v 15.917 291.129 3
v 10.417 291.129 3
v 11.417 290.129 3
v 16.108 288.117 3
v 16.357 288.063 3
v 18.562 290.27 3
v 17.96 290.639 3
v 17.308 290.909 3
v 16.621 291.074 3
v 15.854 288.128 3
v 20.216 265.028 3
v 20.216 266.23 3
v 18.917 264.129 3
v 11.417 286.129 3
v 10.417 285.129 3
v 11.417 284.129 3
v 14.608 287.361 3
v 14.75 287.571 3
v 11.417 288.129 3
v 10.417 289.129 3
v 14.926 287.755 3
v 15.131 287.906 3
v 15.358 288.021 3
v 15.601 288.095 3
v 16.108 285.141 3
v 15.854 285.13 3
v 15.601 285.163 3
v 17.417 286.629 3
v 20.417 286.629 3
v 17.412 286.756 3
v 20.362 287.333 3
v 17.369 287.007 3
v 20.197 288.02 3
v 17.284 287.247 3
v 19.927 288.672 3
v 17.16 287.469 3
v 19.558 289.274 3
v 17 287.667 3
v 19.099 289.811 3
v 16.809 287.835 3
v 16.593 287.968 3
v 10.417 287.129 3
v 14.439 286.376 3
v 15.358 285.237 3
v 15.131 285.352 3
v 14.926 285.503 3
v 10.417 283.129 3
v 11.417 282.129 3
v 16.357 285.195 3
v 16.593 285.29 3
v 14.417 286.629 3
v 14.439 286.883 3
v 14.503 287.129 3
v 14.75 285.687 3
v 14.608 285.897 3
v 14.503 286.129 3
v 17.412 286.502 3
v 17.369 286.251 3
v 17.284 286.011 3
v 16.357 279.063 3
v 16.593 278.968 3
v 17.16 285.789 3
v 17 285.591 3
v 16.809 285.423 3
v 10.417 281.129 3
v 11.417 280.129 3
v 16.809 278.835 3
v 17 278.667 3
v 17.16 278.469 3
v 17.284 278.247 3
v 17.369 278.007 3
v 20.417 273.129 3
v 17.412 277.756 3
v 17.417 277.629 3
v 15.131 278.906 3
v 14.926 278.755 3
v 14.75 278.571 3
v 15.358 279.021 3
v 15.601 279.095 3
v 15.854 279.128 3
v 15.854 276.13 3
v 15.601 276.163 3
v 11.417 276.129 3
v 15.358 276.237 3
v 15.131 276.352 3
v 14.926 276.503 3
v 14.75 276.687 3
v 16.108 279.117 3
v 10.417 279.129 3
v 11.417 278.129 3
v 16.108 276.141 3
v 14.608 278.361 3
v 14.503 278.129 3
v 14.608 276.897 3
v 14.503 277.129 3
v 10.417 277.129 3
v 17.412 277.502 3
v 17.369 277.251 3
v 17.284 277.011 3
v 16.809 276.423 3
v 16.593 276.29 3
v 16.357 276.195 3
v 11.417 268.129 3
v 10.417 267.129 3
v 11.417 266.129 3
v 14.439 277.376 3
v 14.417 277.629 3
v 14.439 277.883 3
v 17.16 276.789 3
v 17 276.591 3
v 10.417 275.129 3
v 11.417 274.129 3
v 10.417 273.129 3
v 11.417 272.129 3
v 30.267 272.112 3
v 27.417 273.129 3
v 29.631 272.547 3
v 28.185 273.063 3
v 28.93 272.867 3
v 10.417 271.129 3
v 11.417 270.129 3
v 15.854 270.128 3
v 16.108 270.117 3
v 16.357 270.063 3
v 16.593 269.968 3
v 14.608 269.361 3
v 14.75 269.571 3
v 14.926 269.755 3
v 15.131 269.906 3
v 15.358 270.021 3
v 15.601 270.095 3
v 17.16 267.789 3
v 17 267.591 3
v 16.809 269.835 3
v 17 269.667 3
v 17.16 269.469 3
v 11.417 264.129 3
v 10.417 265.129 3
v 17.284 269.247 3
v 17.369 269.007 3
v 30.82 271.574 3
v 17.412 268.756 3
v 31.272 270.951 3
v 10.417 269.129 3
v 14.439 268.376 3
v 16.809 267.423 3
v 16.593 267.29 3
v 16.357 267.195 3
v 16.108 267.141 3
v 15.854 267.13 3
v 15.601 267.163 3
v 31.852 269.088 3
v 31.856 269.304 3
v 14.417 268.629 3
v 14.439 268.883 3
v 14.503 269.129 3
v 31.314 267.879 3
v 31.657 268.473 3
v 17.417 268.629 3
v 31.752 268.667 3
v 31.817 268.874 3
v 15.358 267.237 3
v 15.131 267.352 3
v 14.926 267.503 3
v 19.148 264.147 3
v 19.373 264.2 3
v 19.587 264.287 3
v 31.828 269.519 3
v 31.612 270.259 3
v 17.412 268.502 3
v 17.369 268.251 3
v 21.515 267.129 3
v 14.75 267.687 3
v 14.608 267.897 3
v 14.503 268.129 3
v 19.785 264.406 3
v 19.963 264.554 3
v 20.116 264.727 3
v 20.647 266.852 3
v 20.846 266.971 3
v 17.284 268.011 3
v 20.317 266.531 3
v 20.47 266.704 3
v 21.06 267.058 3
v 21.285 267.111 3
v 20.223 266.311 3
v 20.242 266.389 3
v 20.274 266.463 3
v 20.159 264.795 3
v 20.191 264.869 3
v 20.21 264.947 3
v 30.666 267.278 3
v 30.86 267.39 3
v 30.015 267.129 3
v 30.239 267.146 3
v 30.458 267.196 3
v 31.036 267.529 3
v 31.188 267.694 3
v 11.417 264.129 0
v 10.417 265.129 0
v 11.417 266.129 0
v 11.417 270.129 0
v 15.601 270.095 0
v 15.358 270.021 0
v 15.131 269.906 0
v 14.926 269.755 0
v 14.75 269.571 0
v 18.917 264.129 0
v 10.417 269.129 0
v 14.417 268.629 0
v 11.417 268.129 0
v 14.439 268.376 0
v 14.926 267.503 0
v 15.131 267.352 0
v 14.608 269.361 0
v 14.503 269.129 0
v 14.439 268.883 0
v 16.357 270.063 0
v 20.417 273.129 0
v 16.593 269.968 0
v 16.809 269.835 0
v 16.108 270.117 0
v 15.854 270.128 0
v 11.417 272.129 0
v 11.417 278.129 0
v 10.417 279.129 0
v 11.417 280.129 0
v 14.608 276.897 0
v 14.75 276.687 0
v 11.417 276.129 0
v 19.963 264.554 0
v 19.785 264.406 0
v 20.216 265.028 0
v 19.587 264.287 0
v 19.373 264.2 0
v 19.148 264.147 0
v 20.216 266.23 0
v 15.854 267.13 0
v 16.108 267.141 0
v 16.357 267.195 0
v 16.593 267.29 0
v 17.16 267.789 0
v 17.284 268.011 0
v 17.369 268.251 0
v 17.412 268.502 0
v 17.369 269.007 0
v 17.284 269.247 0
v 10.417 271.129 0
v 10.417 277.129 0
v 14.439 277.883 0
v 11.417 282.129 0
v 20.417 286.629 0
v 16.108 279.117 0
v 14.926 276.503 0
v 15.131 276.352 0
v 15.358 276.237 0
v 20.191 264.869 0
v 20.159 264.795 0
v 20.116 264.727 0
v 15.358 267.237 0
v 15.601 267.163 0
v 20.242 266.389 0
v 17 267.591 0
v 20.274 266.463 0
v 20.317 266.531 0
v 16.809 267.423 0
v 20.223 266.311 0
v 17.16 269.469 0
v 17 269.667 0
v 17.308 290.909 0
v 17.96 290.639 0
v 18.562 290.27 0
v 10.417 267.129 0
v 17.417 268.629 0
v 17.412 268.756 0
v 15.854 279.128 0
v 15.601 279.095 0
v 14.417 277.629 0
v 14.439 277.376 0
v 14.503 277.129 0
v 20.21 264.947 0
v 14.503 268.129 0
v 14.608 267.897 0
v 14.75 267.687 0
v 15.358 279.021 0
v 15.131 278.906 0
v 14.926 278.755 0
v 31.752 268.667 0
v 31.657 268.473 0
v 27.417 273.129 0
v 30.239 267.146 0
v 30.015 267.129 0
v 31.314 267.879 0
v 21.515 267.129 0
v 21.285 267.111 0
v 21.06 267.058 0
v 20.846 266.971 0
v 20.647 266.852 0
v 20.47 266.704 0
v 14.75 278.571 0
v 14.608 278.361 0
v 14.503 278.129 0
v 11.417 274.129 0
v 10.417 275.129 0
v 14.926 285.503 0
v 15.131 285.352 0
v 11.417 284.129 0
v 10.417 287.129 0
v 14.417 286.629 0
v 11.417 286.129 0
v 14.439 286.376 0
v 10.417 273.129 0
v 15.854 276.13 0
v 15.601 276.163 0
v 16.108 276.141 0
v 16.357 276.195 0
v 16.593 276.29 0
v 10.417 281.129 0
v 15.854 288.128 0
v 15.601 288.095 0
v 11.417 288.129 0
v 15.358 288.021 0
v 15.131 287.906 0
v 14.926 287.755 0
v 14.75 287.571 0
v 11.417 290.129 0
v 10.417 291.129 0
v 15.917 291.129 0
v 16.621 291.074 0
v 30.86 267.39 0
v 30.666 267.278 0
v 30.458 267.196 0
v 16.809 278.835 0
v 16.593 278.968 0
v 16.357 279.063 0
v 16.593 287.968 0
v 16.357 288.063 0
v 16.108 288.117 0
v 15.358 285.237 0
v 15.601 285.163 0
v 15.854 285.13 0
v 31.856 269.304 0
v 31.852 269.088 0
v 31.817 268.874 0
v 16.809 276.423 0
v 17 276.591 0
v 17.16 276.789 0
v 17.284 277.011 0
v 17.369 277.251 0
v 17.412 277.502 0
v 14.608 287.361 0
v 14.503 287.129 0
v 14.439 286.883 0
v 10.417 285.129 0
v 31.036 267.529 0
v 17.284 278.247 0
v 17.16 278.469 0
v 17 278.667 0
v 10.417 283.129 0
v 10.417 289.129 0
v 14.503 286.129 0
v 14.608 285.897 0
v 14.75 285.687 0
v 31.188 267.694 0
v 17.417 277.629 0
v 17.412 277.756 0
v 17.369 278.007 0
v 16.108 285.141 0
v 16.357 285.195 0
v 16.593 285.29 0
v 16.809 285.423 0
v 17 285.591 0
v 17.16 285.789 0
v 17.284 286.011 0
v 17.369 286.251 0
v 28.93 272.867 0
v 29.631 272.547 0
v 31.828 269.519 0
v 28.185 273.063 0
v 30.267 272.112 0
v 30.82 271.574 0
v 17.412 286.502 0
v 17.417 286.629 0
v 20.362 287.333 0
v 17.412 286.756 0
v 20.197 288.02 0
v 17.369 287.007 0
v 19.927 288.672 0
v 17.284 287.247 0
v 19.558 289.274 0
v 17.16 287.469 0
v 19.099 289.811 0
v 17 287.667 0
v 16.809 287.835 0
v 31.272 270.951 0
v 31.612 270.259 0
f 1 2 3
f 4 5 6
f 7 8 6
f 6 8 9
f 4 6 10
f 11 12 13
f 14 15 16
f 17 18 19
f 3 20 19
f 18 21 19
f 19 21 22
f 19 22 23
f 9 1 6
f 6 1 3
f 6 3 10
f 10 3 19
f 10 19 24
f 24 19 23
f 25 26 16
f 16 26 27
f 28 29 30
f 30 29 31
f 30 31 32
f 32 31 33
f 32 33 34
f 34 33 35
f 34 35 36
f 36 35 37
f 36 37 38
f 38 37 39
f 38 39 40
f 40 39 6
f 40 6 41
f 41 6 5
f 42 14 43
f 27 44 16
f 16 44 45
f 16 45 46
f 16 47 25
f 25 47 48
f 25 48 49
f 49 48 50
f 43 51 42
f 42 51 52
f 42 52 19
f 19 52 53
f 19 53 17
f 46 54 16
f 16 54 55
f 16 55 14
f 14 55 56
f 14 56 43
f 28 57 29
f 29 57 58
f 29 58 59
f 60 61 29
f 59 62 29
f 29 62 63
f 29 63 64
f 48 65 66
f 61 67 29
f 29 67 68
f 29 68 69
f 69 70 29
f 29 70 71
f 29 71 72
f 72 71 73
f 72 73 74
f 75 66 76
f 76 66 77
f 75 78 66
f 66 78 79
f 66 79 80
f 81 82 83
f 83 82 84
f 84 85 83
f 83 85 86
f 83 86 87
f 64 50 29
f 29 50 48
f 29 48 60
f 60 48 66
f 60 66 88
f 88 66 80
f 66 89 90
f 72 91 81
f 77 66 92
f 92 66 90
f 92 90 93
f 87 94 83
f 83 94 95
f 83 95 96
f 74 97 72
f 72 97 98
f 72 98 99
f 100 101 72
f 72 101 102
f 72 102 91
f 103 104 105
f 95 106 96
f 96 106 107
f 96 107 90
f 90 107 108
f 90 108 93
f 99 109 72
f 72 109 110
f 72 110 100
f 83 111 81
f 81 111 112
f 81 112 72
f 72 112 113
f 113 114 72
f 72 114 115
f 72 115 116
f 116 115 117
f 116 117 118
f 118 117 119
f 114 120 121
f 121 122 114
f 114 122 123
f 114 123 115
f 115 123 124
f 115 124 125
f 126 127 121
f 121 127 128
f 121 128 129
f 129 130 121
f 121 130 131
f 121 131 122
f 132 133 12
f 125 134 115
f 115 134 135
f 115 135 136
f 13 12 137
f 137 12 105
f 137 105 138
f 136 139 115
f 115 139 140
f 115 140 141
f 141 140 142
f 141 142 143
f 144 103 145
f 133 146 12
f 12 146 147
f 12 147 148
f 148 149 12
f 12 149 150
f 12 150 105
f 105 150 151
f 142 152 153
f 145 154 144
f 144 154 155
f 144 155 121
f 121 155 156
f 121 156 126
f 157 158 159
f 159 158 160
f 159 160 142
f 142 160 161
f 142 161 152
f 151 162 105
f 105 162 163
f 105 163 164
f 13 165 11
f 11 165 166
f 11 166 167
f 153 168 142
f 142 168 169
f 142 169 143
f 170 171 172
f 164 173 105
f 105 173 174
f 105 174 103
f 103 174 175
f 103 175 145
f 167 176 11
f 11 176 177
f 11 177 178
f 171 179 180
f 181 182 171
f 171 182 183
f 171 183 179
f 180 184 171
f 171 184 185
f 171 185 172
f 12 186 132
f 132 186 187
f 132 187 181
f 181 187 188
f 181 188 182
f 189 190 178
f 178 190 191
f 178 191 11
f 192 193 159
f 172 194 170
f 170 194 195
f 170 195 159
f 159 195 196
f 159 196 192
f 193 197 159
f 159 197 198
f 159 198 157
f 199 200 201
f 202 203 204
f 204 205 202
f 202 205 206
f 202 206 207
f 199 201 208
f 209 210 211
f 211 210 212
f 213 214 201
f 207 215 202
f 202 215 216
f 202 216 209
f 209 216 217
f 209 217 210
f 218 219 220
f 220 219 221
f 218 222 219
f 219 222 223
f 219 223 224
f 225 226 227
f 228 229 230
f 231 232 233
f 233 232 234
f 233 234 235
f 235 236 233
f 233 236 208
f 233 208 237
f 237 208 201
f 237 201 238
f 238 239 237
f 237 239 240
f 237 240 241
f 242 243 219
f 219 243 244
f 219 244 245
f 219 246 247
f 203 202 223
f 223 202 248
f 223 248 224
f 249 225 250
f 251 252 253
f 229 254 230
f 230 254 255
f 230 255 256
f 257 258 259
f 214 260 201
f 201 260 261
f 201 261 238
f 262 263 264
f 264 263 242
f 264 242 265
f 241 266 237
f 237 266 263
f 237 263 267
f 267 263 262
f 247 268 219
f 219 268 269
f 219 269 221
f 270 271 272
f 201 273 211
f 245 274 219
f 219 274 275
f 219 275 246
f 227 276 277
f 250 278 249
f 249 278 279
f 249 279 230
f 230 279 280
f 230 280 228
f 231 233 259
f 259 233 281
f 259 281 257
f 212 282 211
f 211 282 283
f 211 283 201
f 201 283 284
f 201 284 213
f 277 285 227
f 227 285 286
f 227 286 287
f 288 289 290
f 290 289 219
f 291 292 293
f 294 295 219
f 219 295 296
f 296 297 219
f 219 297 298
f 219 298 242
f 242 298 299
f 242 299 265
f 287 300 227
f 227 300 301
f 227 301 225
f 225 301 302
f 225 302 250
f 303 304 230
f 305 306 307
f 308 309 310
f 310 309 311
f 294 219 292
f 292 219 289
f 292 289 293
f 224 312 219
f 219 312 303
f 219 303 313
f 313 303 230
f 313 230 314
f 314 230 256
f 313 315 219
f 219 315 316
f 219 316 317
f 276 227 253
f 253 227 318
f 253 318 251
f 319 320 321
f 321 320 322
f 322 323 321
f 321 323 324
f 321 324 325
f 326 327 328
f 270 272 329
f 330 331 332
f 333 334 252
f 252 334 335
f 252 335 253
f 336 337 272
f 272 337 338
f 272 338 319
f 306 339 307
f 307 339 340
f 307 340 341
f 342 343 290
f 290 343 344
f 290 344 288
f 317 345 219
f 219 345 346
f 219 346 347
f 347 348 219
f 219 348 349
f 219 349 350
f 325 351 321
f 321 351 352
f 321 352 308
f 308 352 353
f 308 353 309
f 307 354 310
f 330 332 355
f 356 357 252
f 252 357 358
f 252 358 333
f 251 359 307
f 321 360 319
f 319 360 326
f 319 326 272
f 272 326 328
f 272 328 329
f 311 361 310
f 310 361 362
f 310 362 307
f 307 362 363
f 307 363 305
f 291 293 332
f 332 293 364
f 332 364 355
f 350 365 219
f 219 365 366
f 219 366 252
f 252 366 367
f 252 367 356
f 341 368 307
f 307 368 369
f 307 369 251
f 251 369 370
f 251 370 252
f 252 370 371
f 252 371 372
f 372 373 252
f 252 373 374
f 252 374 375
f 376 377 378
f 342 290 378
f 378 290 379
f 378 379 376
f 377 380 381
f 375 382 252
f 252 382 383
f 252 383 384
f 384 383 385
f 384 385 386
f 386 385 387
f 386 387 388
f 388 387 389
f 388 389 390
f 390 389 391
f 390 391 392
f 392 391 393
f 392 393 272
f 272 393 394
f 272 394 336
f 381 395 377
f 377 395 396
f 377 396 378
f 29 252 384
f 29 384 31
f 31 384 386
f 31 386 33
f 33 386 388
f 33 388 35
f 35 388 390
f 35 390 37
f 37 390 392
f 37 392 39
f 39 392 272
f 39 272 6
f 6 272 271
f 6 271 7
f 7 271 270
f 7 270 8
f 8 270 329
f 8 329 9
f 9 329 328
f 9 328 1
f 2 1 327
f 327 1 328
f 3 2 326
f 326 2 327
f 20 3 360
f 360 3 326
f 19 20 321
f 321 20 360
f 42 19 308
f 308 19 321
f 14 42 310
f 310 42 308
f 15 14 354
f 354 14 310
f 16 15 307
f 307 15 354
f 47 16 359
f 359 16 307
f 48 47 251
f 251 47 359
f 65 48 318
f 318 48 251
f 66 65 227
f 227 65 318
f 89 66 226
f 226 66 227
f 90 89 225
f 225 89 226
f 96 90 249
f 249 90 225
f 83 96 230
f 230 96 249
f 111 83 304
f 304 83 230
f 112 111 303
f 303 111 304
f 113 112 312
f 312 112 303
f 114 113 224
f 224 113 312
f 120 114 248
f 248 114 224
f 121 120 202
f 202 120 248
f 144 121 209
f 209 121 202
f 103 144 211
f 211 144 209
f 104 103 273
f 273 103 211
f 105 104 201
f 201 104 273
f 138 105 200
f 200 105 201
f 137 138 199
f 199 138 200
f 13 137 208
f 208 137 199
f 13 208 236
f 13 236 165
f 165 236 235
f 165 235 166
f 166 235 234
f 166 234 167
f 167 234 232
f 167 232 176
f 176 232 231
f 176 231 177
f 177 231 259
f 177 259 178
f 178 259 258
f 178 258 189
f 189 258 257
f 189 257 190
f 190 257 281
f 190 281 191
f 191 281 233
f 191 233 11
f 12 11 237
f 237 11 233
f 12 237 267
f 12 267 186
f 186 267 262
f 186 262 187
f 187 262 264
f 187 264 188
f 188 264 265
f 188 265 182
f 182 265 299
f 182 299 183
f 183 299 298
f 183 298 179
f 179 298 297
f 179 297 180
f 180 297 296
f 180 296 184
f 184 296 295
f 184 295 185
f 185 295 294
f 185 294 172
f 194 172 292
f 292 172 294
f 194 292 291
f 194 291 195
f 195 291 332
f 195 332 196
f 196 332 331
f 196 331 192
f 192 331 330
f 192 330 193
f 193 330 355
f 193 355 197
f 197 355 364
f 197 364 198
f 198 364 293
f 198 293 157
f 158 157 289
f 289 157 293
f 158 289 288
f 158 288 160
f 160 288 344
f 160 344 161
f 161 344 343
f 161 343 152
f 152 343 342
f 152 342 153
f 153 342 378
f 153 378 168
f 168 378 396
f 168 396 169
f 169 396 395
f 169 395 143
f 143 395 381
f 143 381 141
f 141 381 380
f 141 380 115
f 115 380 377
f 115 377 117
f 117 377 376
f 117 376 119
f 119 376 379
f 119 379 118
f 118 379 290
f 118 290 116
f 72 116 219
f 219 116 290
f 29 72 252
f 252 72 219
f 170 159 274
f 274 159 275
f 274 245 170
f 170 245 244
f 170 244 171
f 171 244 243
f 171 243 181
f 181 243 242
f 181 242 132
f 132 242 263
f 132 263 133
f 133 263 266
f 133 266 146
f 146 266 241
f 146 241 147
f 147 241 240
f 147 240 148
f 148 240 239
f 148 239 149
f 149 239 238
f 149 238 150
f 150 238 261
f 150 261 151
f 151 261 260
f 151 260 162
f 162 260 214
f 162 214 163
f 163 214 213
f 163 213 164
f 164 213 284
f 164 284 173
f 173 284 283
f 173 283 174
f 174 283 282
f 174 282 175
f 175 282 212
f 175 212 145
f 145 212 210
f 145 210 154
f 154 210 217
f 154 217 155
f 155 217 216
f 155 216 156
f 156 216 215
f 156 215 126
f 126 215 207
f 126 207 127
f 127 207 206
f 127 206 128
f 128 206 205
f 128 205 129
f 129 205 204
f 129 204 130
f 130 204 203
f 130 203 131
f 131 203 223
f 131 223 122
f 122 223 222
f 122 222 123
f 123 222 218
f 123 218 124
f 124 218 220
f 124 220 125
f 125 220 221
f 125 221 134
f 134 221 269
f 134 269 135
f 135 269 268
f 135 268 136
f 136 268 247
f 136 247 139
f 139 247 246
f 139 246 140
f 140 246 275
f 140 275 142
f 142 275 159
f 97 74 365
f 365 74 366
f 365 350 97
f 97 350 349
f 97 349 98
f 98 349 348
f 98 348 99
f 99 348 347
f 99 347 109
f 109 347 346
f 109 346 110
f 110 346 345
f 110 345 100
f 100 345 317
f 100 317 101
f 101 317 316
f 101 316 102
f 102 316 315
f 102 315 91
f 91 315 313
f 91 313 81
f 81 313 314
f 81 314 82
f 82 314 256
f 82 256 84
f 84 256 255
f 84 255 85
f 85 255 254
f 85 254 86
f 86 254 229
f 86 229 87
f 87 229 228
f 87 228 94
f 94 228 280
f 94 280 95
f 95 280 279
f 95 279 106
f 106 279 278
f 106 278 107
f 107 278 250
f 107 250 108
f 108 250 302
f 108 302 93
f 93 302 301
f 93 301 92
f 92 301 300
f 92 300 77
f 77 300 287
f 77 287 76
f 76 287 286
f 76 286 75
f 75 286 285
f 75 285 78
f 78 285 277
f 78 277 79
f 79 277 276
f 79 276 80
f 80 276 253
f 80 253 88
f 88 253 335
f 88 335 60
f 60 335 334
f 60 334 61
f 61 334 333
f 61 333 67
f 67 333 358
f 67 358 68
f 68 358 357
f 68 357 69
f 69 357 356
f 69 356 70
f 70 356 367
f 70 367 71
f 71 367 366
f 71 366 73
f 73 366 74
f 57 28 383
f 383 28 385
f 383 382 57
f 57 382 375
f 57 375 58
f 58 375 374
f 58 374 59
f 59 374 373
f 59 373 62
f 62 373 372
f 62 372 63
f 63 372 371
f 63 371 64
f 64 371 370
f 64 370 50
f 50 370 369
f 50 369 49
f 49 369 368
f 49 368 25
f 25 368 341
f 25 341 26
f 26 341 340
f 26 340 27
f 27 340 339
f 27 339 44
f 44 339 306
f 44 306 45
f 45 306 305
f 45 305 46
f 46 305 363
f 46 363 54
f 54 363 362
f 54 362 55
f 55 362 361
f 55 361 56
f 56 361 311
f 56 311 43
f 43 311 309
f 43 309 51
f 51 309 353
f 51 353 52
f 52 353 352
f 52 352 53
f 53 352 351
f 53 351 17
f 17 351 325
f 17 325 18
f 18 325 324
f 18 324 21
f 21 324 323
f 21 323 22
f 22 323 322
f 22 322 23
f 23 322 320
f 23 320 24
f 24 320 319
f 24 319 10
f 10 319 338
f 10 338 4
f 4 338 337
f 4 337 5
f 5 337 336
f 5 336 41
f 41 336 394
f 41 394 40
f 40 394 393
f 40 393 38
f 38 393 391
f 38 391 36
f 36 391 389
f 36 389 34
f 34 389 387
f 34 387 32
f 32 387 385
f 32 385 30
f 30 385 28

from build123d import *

# Parameters (mm, degrees)
MODEL_R                 = 1.5
SALIENTE_EXTRUIR1_DEPTH = 3


with BuildPart() as part:
    # Model → Saliente-Extruir1 (new body)
    with BuildSketch(Plane.XY):
        with BuildLine():
            Line((10.417346401, 265.129037091), (11.417346401, 266.129037091))
            Line((11.417346401, 266.129037091), (10.417346401, 267.129037091))
            Line((10.417346401, 267.129037091), (11.417346401, 268.129037091))
            Line((11.417346401, 268.129037091), (10.417346401, 269.129037091))
            Line((10.417346401, 269.129037091), (11.417346401, 270.129037091))
            Line((11.417346401, 270.129037091), (10.417346401, 271.129037091))
            Line((10.417346401, 271.129037091), (11.417346401, 272.129037091))
            Line((11.417346401, 272.129037091), (10.417346401, 273.129037091))
            Line((10.417346401, 273.129037091), (11.417346401, 274.129037091))
            Line((11.417346401, 274.129037091), (10.417346401, 275.129037091))
            Line((10.417346401, 275.129037091), (11.417346401, 276.129037091))
            Line((11.417346401, 276.129037091), (10.417346401, 277.129037091))
            Line((10.417346401, 277.129037091), (11.417346401, 278.129037091))
            Line((11.417346401, 278.129037091), (10.417346401, 279.129037091))
            Line((10.417346401, 279.129037091), (11.417346401, 280.129037091))
            Line((11.417346401, 280.129037091), (10.417346401, 281.129037091))
            Line((10.417346401, 281.129037091), (11.417346401, 282.129037091))
            Line((11.417346401, 282.129037091), (10.417346401, 283.129037091))
            Line((10.417346401, 283.129037091), (11.417346401, 284.129037091))
            Line((11.417346401, 284.129037091), (10.417346401, 285.129037091))
            Line((10.417346401, 285.129037091), (11.417346401, 286.129037091))
            Line((11.417346401, 286.129037091), (10.417346401, 287.129037091))
            Line((10.417346401, 287.129037091), (11.417346401, 288.129037091))
            Line((11.417346401, 288.129037091), (10.417346401, 289.129037091))
            Line((10.417346401, 289.129037091), (11.417346401, 290.129037091))
            Line((11.417346401, 290.129037091), (10.417346401, 291.129037091))
            Line((10.417346401, 291.129037091), (15.917346401, 291.129037091))
            ThreePointArc((15.917346401, 291.129037091), (19.099326917, 289.811017606), (20.417346401, 286.629037091))
            Line((20.417346401, 286.629037091), (20.417346401, 273.129037091))
            Line((20.417346401, 273.129037091), (27.417346401, 273.129037091))
            ThreePointArc((27.417346401, 273.129037091), (30.267267915, 272.111557351), (31.828417252, 269.51923592))
            ThreePointArc((31.828417252, 269.51923592), (31.838364225, 268.980221543), (31.657098407, 268.472502977))
            Line((31.657098407, 268.472502977), (31.314460718, 267.879037091))
            ThreePointArc((31.314460718, 267.879037091), (30.765422613, 267.329998985), (30.015422613, 267.129037091))
            Line((30.015422613, 267.129037091), (21.515422613, 267.129037091))
            ThreePointArc((21.515422613, 267.129037091), (20.845676718, 266.971214589), (20.316865454, 266.530957674))
            ThreePointArc((20.316865454, 266.530957674), (20.242169616, 266.388811129), (20.216384507, 266.23031748))
            Line((20.216384507, 266.23031748), (20.216384507, 265.027756703))
            ThreePointArc((20.216384507, 265.027756703), (20.190599398, 264.869263053), (20.11590356, 264.727116508))
            ThreePointArc((20.11590356, 264.727116508), (19.587092296, 264.286859593), (18.917346401, 264.129037091))
            Line((18.917346401, 264.129037091), (11.417346401, 264.129037091))
            Line((11.417346401, 264.129037091), (10.417346401, 265.129037091))
        make_face()
        with Locations((15.917346401, 268.629037091)):
            Circle(MODEL_R, mode=Mode.SUBTRACT)
        with Locations((15.917346401, 277.629037091)):
            Circle(MODEL_R, mode=Mode.SUBTRACT)
        with Locations((15.917346401, 286.629037091)):
            Circle(MODEL_R, mode=Mode.SUBTRACT)
    extrude(amount=SALIENTE_EXTRUIR1_DEPTH)


solid = part.part
